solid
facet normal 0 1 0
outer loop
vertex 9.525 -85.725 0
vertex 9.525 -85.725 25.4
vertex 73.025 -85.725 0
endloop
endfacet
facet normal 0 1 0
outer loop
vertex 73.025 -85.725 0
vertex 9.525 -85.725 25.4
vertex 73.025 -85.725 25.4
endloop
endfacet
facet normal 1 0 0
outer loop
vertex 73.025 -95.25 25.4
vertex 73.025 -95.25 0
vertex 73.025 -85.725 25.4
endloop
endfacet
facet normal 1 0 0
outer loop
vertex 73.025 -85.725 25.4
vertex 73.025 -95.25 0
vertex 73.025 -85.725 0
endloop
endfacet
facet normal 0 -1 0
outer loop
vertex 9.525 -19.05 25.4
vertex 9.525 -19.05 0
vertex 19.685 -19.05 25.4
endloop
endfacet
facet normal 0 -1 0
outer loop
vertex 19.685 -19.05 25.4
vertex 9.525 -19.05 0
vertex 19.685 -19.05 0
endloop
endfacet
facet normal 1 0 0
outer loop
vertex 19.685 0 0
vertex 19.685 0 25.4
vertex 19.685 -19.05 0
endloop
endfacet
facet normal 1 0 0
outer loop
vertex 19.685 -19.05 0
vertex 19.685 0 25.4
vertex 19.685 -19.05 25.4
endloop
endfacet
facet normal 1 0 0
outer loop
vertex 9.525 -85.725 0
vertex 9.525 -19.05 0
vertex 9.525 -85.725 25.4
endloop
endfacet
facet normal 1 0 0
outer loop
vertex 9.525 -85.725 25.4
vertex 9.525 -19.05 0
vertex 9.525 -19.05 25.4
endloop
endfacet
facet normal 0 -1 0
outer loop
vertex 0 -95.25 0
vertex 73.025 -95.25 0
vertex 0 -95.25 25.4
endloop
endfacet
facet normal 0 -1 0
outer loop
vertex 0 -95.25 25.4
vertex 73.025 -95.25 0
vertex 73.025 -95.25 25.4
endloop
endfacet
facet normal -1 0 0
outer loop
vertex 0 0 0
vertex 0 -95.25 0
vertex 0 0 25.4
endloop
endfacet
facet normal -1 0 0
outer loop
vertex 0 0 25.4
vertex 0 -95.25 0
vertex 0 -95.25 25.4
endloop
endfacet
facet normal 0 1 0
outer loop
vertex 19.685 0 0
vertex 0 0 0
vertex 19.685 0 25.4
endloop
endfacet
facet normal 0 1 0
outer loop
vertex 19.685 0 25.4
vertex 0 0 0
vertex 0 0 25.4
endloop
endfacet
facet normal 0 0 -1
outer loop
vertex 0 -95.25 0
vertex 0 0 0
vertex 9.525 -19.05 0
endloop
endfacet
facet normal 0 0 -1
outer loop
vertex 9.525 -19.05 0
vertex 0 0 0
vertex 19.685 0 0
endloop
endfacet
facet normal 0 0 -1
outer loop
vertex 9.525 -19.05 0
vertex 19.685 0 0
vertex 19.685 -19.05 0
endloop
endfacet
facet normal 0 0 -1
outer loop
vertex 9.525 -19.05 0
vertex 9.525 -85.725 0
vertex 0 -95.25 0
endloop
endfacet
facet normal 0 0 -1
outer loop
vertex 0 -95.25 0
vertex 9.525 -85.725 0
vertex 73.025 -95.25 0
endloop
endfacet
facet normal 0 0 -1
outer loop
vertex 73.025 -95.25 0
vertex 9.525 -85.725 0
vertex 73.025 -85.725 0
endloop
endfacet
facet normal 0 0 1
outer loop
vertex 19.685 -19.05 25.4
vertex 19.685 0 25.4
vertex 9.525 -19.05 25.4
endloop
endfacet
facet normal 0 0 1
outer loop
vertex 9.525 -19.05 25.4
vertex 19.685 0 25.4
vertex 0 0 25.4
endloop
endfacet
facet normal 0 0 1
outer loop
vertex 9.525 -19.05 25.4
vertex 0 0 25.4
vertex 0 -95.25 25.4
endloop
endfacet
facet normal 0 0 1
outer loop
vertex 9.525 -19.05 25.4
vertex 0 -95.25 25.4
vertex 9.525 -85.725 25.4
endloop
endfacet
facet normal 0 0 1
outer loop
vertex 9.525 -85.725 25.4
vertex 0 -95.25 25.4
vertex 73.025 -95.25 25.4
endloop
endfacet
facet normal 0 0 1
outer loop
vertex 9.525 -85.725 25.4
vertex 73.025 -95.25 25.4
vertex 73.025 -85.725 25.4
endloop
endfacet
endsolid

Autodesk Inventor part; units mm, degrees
ref_plane "YZ Plane" through (0, 0, 0) normal (1, 0, 0) x (0, 1, 0)
ref_plane "XZ Plane" through (0, 0, 0) normal (0, 1, 0) x (-1, 0, 0)
ref_plane "XY Plane" through (0, 0, 0) normal (0, 0, 1) x (1, 0, 0)
sketch "Sketch1" plane through (0, 0, 0) normal (0, 0, 1) x (1, 0, 0)
  line L0 (0, 0) -> (9.525, 0)
  line L1 (9.525, 0) -> (9.525, -95.25)
  line L2 (9.525, -95.25) -> (0, -95.25)
  line L3 (0, -95.25) -> (0, 0)
  dimension "d0" = 9.525
  dimension "d1" = 95.25
extrude "Extrusion1" add sketch "Sketch1" along normal blind 25.4
sketch "Sketch2" plane through (9.525, -95.25, 0) normal (1, 0, 0) x (0, 0, -1)
  line L0 (-25.4, 95.25) -> (-25.4, 0) projected
  line L1 (0, 95.25) -> (-25.4, 95.25)
  line L2 (-25.4, 95.25) -> (-25.4, 76.2)
  line L3 (-25.4, 76.2) -> (0, 76.2)
  line L4 (0, 76.2) -> (0, 95.25)
  dimension "d4" = 19.05
extrude "Extrusion2" add sketch "Sketch2" along normal blind 10.16
sketch "Sketch3" plane through (9.525, -95.25, 25.4) normal (1, 0, 0) x (0, 0, -1)
  line L0 (0, 0) -> (25.4, 0)
  line L1 (25.4, 0) -> (25.4, 9.525)
  line L2 (25.4, 9.525) -> (0, 9.525)
  line L3 (0, 9.525) -> (0, 0)
  point P0 (25.4, 95.25)
  dimension "d7" = 25.4
  dimension "d8" = 9.525
extrude "Extrusion3" add sketch "Sketch3" along normal blind 63.5
sketch "Sketch6" plane through (0, 0, 25.4) normal (0, 0, 1) x (1, 0, 0)
  point P0 (0, 0)
properties part number "door stop supreme"
